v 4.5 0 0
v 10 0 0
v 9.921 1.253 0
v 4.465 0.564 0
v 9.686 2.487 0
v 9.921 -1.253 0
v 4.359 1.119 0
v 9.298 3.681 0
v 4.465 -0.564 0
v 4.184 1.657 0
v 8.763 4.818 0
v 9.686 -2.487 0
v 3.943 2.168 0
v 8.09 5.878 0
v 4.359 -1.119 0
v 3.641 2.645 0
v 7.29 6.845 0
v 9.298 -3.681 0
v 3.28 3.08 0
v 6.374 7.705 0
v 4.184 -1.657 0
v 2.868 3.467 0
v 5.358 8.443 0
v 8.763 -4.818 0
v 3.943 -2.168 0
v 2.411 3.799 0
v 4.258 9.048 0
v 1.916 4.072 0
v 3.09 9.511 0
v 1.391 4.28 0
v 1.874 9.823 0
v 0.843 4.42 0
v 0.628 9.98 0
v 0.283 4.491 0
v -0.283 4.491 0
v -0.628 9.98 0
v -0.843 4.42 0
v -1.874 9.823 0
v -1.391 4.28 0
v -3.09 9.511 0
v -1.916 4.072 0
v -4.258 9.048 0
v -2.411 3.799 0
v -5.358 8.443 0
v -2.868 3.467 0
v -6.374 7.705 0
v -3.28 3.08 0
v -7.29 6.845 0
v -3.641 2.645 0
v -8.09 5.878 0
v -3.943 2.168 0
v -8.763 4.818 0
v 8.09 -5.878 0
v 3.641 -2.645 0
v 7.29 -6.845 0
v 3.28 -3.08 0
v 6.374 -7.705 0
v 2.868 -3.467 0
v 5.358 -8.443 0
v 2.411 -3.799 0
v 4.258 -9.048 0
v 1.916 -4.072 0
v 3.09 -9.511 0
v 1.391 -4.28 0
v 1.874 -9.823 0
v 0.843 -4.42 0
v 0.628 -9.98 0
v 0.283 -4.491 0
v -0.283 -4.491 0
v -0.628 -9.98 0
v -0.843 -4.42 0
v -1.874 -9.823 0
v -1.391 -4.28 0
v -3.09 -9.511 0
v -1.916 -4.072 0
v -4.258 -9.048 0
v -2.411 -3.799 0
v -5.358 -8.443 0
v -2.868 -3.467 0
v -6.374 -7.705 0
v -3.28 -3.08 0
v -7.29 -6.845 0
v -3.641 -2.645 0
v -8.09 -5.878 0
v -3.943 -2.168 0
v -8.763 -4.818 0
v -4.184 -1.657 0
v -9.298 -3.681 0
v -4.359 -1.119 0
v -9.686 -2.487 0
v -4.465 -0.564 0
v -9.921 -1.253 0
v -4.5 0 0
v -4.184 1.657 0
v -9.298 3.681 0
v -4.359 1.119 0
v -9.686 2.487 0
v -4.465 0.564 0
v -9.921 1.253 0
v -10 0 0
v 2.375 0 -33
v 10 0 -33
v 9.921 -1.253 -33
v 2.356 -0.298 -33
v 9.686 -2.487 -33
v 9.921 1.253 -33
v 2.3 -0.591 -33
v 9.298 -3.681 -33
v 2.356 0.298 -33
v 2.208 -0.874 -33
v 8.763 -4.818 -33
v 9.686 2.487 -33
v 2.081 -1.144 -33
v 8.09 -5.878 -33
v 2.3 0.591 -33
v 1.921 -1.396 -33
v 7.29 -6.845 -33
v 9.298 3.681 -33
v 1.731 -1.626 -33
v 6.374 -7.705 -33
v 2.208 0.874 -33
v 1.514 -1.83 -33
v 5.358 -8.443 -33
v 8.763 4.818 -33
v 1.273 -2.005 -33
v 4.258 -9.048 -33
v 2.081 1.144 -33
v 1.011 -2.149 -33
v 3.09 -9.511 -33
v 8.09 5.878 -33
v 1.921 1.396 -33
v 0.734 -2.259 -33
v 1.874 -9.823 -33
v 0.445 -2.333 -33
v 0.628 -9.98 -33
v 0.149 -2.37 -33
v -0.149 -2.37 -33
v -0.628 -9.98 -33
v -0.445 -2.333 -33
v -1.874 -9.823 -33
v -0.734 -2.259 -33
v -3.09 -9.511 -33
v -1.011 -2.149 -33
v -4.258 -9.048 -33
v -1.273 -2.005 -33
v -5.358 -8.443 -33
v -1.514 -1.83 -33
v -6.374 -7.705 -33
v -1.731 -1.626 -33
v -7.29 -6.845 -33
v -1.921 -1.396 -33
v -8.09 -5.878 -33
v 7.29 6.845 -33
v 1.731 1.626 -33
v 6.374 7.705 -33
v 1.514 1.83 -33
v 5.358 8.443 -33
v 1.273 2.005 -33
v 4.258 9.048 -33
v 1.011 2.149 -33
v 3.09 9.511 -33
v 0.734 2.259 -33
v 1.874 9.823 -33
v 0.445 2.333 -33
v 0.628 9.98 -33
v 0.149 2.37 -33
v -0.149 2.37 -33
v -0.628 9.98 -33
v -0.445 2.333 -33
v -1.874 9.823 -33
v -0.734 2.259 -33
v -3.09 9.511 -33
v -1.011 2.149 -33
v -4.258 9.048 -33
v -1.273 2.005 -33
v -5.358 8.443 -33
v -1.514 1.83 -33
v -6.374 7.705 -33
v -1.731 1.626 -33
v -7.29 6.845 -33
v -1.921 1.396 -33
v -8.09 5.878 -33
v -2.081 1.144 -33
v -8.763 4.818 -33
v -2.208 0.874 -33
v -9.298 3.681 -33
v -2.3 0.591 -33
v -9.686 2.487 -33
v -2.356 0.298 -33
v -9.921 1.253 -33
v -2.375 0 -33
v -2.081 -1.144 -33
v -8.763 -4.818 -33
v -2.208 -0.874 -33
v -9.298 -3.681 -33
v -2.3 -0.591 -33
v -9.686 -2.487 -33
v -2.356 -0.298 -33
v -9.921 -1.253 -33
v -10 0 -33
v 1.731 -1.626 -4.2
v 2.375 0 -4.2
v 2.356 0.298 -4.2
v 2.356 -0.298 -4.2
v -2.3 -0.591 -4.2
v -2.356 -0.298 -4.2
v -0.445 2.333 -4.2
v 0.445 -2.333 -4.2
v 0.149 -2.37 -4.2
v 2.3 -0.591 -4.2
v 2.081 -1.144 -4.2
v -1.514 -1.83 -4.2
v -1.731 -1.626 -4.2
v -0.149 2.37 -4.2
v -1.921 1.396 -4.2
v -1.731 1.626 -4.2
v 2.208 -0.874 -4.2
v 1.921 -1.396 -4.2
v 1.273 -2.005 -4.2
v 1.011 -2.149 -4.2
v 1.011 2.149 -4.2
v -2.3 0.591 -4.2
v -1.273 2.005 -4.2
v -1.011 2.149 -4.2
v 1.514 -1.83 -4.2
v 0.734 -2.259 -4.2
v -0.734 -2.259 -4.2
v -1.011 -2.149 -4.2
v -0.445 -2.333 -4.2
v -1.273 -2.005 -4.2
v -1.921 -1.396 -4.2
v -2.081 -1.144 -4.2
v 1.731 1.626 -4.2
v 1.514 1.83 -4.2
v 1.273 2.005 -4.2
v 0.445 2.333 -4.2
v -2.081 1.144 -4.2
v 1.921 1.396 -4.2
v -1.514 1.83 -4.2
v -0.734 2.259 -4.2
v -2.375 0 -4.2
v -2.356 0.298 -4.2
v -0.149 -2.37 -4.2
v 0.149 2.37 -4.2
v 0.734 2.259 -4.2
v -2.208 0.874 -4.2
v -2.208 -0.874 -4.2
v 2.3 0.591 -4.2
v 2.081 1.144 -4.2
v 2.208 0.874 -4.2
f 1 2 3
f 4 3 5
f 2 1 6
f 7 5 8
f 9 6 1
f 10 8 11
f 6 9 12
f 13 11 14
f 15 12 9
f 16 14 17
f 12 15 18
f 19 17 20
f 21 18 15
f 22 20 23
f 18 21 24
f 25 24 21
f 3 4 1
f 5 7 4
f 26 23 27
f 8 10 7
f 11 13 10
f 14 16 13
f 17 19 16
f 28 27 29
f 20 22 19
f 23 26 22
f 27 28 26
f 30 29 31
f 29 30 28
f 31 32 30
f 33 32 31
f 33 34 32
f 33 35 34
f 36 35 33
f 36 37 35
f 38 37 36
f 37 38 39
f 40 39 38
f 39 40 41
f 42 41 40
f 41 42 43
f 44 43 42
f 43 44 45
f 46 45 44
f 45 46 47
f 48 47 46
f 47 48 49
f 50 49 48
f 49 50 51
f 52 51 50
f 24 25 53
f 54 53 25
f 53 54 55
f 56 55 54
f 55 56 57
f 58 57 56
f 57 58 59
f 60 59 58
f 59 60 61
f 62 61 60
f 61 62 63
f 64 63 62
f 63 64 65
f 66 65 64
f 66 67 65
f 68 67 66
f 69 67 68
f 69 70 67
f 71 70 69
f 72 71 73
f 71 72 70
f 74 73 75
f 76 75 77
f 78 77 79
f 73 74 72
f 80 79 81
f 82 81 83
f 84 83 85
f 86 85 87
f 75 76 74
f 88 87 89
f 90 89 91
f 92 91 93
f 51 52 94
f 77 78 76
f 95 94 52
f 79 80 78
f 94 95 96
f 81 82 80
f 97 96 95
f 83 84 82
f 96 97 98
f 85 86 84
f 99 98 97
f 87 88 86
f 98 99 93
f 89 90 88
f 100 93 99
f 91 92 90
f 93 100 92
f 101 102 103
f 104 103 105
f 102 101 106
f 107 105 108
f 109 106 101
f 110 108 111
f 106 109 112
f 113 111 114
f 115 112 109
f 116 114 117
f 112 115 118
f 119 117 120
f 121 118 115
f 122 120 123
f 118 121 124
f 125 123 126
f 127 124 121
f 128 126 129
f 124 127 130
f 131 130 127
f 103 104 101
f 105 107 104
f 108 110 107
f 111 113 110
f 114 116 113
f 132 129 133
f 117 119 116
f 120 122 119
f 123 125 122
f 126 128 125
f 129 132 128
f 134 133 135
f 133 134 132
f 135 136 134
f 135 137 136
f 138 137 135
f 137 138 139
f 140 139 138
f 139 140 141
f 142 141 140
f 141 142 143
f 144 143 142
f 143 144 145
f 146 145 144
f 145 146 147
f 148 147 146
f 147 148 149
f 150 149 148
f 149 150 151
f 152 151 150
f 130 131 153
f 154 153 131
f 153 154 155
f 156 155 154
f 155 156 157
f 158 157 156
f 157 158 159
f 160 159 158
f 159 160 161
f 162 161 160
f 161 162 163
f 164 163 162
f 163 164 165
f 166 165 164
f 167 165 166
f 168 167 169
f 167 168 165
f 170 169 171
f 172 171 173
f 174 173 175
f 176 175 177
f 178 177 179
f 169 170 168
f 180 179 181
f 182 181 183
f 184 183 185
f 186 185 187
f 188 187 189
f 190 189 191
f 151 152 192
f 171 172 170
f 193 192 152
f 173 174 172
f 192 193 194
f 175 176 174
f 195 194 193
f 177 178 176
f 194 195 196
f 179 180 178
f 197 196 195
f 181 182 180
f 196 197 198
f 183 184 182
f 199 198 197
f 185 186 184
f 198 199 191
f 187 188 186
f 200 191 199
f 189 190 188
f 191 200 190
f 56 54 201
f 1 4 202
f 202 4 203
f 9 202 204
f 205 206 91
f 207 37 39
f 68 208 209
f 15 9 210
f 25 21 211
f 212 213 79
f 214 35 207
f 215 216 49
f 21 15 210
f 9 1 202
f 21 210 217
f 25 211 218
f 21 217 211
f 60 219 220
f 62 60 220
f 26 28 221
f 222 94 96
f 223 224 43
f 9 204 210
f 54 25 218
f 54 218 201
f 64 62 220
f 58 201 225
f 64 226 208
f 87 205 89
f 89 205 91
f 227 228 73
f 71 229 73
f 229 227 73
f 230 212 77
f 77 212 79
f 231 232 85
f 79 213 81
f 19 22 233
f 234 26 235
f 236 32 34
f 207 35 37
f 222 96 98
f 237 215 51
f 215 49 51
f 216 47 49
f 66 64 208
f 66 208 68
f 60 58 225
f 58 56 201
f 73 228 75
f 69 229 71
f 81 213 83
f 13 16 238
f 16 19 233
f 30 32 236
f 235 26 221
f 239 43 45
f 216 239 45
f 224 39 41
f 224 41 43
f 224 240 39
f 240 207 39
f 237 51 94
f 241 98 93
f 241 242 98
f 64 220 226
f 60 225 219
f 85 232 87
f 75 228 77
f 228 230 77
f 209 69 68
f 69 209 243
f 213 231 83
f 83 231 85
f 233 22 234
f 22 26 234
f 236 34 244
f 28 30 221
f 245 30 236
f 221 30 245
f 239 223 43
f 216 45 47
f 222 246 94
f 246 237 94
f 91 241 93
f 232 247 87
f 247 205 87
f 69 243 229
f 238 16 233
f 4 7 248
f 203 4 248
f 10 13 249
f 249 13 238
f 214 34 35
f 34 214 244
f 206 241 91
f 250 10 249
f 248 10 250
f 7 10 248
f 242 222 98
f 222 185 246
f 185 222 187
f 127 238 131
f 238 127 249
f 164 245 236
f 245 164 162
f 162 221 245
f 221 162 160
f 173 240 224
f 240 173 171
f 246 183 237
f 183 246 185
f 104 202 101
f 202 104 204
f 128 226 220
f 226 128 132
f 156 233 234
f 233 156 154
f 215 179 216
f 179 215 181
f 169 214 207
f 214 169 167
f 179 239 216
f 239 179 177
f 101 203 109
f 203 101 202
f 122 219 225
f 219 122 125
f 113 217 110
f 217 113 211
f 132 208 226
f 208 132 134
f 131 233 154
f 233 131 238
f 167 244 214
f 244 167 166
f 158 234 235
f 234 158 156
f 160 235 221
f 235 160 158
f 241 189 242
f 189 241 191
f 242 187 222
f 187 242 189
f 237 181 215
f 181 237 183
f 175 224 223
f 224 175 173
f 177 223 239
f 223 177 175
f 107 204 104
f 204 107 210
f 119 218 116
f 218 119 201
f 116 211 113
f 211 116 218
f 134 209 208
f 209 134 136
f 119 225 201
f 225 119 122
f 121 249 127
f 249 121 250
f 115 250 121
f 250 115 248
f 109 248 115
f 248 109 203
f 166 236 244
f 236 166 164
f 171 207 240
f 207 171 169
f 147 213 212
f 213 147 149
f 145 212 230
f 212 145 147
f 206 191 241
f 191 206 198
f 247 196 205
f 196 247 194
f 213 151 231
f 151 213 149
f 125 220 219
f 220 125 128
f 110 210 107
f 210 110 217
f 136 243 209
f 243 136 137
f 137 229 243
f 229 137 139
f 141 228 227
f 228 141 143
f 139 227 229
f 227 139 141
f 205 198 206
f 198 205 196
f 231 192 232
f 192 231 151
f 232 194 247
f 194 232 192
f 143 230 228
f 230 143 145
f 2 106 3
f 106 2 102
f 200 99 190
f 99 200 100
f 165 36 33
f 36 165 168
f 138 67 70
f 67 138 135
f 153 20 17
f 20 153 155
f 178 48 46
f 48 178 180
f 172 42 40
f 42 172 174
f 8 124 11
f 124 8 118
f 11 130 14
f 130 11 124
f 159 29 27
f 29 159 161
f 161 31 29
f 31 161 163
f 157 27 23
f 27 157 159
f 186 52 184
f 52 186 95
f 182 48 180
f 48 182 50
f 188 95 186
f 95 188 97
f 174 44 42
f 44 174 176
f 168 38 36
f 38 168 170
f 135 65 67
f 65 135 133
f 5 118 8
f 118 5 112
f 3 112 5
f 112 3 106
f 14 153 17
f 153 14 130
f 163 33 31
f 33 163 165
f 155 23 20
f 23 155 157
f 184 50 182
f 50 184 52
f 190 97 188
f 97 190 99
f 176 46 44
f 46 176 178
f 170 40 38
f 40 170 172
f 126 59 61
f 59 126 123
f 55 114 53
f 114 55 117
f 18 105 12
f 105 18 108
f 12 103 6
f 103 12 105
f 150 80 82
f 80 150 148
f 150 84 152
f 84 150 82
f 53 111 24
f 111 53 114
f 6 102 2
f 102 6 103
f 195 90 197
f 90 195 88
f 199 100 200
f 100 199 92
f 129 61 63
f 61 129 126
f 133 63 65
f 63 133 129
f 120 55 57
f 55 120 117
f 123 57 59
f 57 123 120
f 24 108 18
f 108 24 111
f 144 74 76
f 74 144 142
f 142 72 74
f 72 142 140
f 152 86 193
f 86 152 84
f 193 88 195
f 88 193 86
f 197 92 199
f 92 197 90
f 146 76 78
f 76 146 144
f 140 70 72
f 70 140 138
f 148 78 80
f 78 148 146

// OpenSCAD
$fn = 50;


difference() {
	union() {
		translate(v = [0, 0, -33.0000000000]) {
			cylinder(h = 33, r = 10.0000000000);
		}
	}
	union() {
		translate(v = [0, 0, 0]) {
			rotate(a = [0, 0, 0]) {
				difference() {
					union() {
						#translate(v = [0, 0, -33.0000000000]) {
							cylinder(h = 33, r = 2.2500000000);
						}
						#translate(v = [0, 0, -4.2000000000]) {
							cylinder(h = 4.2000000000, r = 10.0000000000, r1 = 2.3750000000, r2 = 4.5000000000);
						}
						#translate(v = [0, 0, -33.0000000000]) {
							cylinder(h = 33, r = 2.3750000000);
						}
						#translate(v = [0, 0, -33.0000000000]) {
							cylinder(h = 33, r = 2.2500000000);
						}
					}
					union();
				}
			}
		}
	}
}
